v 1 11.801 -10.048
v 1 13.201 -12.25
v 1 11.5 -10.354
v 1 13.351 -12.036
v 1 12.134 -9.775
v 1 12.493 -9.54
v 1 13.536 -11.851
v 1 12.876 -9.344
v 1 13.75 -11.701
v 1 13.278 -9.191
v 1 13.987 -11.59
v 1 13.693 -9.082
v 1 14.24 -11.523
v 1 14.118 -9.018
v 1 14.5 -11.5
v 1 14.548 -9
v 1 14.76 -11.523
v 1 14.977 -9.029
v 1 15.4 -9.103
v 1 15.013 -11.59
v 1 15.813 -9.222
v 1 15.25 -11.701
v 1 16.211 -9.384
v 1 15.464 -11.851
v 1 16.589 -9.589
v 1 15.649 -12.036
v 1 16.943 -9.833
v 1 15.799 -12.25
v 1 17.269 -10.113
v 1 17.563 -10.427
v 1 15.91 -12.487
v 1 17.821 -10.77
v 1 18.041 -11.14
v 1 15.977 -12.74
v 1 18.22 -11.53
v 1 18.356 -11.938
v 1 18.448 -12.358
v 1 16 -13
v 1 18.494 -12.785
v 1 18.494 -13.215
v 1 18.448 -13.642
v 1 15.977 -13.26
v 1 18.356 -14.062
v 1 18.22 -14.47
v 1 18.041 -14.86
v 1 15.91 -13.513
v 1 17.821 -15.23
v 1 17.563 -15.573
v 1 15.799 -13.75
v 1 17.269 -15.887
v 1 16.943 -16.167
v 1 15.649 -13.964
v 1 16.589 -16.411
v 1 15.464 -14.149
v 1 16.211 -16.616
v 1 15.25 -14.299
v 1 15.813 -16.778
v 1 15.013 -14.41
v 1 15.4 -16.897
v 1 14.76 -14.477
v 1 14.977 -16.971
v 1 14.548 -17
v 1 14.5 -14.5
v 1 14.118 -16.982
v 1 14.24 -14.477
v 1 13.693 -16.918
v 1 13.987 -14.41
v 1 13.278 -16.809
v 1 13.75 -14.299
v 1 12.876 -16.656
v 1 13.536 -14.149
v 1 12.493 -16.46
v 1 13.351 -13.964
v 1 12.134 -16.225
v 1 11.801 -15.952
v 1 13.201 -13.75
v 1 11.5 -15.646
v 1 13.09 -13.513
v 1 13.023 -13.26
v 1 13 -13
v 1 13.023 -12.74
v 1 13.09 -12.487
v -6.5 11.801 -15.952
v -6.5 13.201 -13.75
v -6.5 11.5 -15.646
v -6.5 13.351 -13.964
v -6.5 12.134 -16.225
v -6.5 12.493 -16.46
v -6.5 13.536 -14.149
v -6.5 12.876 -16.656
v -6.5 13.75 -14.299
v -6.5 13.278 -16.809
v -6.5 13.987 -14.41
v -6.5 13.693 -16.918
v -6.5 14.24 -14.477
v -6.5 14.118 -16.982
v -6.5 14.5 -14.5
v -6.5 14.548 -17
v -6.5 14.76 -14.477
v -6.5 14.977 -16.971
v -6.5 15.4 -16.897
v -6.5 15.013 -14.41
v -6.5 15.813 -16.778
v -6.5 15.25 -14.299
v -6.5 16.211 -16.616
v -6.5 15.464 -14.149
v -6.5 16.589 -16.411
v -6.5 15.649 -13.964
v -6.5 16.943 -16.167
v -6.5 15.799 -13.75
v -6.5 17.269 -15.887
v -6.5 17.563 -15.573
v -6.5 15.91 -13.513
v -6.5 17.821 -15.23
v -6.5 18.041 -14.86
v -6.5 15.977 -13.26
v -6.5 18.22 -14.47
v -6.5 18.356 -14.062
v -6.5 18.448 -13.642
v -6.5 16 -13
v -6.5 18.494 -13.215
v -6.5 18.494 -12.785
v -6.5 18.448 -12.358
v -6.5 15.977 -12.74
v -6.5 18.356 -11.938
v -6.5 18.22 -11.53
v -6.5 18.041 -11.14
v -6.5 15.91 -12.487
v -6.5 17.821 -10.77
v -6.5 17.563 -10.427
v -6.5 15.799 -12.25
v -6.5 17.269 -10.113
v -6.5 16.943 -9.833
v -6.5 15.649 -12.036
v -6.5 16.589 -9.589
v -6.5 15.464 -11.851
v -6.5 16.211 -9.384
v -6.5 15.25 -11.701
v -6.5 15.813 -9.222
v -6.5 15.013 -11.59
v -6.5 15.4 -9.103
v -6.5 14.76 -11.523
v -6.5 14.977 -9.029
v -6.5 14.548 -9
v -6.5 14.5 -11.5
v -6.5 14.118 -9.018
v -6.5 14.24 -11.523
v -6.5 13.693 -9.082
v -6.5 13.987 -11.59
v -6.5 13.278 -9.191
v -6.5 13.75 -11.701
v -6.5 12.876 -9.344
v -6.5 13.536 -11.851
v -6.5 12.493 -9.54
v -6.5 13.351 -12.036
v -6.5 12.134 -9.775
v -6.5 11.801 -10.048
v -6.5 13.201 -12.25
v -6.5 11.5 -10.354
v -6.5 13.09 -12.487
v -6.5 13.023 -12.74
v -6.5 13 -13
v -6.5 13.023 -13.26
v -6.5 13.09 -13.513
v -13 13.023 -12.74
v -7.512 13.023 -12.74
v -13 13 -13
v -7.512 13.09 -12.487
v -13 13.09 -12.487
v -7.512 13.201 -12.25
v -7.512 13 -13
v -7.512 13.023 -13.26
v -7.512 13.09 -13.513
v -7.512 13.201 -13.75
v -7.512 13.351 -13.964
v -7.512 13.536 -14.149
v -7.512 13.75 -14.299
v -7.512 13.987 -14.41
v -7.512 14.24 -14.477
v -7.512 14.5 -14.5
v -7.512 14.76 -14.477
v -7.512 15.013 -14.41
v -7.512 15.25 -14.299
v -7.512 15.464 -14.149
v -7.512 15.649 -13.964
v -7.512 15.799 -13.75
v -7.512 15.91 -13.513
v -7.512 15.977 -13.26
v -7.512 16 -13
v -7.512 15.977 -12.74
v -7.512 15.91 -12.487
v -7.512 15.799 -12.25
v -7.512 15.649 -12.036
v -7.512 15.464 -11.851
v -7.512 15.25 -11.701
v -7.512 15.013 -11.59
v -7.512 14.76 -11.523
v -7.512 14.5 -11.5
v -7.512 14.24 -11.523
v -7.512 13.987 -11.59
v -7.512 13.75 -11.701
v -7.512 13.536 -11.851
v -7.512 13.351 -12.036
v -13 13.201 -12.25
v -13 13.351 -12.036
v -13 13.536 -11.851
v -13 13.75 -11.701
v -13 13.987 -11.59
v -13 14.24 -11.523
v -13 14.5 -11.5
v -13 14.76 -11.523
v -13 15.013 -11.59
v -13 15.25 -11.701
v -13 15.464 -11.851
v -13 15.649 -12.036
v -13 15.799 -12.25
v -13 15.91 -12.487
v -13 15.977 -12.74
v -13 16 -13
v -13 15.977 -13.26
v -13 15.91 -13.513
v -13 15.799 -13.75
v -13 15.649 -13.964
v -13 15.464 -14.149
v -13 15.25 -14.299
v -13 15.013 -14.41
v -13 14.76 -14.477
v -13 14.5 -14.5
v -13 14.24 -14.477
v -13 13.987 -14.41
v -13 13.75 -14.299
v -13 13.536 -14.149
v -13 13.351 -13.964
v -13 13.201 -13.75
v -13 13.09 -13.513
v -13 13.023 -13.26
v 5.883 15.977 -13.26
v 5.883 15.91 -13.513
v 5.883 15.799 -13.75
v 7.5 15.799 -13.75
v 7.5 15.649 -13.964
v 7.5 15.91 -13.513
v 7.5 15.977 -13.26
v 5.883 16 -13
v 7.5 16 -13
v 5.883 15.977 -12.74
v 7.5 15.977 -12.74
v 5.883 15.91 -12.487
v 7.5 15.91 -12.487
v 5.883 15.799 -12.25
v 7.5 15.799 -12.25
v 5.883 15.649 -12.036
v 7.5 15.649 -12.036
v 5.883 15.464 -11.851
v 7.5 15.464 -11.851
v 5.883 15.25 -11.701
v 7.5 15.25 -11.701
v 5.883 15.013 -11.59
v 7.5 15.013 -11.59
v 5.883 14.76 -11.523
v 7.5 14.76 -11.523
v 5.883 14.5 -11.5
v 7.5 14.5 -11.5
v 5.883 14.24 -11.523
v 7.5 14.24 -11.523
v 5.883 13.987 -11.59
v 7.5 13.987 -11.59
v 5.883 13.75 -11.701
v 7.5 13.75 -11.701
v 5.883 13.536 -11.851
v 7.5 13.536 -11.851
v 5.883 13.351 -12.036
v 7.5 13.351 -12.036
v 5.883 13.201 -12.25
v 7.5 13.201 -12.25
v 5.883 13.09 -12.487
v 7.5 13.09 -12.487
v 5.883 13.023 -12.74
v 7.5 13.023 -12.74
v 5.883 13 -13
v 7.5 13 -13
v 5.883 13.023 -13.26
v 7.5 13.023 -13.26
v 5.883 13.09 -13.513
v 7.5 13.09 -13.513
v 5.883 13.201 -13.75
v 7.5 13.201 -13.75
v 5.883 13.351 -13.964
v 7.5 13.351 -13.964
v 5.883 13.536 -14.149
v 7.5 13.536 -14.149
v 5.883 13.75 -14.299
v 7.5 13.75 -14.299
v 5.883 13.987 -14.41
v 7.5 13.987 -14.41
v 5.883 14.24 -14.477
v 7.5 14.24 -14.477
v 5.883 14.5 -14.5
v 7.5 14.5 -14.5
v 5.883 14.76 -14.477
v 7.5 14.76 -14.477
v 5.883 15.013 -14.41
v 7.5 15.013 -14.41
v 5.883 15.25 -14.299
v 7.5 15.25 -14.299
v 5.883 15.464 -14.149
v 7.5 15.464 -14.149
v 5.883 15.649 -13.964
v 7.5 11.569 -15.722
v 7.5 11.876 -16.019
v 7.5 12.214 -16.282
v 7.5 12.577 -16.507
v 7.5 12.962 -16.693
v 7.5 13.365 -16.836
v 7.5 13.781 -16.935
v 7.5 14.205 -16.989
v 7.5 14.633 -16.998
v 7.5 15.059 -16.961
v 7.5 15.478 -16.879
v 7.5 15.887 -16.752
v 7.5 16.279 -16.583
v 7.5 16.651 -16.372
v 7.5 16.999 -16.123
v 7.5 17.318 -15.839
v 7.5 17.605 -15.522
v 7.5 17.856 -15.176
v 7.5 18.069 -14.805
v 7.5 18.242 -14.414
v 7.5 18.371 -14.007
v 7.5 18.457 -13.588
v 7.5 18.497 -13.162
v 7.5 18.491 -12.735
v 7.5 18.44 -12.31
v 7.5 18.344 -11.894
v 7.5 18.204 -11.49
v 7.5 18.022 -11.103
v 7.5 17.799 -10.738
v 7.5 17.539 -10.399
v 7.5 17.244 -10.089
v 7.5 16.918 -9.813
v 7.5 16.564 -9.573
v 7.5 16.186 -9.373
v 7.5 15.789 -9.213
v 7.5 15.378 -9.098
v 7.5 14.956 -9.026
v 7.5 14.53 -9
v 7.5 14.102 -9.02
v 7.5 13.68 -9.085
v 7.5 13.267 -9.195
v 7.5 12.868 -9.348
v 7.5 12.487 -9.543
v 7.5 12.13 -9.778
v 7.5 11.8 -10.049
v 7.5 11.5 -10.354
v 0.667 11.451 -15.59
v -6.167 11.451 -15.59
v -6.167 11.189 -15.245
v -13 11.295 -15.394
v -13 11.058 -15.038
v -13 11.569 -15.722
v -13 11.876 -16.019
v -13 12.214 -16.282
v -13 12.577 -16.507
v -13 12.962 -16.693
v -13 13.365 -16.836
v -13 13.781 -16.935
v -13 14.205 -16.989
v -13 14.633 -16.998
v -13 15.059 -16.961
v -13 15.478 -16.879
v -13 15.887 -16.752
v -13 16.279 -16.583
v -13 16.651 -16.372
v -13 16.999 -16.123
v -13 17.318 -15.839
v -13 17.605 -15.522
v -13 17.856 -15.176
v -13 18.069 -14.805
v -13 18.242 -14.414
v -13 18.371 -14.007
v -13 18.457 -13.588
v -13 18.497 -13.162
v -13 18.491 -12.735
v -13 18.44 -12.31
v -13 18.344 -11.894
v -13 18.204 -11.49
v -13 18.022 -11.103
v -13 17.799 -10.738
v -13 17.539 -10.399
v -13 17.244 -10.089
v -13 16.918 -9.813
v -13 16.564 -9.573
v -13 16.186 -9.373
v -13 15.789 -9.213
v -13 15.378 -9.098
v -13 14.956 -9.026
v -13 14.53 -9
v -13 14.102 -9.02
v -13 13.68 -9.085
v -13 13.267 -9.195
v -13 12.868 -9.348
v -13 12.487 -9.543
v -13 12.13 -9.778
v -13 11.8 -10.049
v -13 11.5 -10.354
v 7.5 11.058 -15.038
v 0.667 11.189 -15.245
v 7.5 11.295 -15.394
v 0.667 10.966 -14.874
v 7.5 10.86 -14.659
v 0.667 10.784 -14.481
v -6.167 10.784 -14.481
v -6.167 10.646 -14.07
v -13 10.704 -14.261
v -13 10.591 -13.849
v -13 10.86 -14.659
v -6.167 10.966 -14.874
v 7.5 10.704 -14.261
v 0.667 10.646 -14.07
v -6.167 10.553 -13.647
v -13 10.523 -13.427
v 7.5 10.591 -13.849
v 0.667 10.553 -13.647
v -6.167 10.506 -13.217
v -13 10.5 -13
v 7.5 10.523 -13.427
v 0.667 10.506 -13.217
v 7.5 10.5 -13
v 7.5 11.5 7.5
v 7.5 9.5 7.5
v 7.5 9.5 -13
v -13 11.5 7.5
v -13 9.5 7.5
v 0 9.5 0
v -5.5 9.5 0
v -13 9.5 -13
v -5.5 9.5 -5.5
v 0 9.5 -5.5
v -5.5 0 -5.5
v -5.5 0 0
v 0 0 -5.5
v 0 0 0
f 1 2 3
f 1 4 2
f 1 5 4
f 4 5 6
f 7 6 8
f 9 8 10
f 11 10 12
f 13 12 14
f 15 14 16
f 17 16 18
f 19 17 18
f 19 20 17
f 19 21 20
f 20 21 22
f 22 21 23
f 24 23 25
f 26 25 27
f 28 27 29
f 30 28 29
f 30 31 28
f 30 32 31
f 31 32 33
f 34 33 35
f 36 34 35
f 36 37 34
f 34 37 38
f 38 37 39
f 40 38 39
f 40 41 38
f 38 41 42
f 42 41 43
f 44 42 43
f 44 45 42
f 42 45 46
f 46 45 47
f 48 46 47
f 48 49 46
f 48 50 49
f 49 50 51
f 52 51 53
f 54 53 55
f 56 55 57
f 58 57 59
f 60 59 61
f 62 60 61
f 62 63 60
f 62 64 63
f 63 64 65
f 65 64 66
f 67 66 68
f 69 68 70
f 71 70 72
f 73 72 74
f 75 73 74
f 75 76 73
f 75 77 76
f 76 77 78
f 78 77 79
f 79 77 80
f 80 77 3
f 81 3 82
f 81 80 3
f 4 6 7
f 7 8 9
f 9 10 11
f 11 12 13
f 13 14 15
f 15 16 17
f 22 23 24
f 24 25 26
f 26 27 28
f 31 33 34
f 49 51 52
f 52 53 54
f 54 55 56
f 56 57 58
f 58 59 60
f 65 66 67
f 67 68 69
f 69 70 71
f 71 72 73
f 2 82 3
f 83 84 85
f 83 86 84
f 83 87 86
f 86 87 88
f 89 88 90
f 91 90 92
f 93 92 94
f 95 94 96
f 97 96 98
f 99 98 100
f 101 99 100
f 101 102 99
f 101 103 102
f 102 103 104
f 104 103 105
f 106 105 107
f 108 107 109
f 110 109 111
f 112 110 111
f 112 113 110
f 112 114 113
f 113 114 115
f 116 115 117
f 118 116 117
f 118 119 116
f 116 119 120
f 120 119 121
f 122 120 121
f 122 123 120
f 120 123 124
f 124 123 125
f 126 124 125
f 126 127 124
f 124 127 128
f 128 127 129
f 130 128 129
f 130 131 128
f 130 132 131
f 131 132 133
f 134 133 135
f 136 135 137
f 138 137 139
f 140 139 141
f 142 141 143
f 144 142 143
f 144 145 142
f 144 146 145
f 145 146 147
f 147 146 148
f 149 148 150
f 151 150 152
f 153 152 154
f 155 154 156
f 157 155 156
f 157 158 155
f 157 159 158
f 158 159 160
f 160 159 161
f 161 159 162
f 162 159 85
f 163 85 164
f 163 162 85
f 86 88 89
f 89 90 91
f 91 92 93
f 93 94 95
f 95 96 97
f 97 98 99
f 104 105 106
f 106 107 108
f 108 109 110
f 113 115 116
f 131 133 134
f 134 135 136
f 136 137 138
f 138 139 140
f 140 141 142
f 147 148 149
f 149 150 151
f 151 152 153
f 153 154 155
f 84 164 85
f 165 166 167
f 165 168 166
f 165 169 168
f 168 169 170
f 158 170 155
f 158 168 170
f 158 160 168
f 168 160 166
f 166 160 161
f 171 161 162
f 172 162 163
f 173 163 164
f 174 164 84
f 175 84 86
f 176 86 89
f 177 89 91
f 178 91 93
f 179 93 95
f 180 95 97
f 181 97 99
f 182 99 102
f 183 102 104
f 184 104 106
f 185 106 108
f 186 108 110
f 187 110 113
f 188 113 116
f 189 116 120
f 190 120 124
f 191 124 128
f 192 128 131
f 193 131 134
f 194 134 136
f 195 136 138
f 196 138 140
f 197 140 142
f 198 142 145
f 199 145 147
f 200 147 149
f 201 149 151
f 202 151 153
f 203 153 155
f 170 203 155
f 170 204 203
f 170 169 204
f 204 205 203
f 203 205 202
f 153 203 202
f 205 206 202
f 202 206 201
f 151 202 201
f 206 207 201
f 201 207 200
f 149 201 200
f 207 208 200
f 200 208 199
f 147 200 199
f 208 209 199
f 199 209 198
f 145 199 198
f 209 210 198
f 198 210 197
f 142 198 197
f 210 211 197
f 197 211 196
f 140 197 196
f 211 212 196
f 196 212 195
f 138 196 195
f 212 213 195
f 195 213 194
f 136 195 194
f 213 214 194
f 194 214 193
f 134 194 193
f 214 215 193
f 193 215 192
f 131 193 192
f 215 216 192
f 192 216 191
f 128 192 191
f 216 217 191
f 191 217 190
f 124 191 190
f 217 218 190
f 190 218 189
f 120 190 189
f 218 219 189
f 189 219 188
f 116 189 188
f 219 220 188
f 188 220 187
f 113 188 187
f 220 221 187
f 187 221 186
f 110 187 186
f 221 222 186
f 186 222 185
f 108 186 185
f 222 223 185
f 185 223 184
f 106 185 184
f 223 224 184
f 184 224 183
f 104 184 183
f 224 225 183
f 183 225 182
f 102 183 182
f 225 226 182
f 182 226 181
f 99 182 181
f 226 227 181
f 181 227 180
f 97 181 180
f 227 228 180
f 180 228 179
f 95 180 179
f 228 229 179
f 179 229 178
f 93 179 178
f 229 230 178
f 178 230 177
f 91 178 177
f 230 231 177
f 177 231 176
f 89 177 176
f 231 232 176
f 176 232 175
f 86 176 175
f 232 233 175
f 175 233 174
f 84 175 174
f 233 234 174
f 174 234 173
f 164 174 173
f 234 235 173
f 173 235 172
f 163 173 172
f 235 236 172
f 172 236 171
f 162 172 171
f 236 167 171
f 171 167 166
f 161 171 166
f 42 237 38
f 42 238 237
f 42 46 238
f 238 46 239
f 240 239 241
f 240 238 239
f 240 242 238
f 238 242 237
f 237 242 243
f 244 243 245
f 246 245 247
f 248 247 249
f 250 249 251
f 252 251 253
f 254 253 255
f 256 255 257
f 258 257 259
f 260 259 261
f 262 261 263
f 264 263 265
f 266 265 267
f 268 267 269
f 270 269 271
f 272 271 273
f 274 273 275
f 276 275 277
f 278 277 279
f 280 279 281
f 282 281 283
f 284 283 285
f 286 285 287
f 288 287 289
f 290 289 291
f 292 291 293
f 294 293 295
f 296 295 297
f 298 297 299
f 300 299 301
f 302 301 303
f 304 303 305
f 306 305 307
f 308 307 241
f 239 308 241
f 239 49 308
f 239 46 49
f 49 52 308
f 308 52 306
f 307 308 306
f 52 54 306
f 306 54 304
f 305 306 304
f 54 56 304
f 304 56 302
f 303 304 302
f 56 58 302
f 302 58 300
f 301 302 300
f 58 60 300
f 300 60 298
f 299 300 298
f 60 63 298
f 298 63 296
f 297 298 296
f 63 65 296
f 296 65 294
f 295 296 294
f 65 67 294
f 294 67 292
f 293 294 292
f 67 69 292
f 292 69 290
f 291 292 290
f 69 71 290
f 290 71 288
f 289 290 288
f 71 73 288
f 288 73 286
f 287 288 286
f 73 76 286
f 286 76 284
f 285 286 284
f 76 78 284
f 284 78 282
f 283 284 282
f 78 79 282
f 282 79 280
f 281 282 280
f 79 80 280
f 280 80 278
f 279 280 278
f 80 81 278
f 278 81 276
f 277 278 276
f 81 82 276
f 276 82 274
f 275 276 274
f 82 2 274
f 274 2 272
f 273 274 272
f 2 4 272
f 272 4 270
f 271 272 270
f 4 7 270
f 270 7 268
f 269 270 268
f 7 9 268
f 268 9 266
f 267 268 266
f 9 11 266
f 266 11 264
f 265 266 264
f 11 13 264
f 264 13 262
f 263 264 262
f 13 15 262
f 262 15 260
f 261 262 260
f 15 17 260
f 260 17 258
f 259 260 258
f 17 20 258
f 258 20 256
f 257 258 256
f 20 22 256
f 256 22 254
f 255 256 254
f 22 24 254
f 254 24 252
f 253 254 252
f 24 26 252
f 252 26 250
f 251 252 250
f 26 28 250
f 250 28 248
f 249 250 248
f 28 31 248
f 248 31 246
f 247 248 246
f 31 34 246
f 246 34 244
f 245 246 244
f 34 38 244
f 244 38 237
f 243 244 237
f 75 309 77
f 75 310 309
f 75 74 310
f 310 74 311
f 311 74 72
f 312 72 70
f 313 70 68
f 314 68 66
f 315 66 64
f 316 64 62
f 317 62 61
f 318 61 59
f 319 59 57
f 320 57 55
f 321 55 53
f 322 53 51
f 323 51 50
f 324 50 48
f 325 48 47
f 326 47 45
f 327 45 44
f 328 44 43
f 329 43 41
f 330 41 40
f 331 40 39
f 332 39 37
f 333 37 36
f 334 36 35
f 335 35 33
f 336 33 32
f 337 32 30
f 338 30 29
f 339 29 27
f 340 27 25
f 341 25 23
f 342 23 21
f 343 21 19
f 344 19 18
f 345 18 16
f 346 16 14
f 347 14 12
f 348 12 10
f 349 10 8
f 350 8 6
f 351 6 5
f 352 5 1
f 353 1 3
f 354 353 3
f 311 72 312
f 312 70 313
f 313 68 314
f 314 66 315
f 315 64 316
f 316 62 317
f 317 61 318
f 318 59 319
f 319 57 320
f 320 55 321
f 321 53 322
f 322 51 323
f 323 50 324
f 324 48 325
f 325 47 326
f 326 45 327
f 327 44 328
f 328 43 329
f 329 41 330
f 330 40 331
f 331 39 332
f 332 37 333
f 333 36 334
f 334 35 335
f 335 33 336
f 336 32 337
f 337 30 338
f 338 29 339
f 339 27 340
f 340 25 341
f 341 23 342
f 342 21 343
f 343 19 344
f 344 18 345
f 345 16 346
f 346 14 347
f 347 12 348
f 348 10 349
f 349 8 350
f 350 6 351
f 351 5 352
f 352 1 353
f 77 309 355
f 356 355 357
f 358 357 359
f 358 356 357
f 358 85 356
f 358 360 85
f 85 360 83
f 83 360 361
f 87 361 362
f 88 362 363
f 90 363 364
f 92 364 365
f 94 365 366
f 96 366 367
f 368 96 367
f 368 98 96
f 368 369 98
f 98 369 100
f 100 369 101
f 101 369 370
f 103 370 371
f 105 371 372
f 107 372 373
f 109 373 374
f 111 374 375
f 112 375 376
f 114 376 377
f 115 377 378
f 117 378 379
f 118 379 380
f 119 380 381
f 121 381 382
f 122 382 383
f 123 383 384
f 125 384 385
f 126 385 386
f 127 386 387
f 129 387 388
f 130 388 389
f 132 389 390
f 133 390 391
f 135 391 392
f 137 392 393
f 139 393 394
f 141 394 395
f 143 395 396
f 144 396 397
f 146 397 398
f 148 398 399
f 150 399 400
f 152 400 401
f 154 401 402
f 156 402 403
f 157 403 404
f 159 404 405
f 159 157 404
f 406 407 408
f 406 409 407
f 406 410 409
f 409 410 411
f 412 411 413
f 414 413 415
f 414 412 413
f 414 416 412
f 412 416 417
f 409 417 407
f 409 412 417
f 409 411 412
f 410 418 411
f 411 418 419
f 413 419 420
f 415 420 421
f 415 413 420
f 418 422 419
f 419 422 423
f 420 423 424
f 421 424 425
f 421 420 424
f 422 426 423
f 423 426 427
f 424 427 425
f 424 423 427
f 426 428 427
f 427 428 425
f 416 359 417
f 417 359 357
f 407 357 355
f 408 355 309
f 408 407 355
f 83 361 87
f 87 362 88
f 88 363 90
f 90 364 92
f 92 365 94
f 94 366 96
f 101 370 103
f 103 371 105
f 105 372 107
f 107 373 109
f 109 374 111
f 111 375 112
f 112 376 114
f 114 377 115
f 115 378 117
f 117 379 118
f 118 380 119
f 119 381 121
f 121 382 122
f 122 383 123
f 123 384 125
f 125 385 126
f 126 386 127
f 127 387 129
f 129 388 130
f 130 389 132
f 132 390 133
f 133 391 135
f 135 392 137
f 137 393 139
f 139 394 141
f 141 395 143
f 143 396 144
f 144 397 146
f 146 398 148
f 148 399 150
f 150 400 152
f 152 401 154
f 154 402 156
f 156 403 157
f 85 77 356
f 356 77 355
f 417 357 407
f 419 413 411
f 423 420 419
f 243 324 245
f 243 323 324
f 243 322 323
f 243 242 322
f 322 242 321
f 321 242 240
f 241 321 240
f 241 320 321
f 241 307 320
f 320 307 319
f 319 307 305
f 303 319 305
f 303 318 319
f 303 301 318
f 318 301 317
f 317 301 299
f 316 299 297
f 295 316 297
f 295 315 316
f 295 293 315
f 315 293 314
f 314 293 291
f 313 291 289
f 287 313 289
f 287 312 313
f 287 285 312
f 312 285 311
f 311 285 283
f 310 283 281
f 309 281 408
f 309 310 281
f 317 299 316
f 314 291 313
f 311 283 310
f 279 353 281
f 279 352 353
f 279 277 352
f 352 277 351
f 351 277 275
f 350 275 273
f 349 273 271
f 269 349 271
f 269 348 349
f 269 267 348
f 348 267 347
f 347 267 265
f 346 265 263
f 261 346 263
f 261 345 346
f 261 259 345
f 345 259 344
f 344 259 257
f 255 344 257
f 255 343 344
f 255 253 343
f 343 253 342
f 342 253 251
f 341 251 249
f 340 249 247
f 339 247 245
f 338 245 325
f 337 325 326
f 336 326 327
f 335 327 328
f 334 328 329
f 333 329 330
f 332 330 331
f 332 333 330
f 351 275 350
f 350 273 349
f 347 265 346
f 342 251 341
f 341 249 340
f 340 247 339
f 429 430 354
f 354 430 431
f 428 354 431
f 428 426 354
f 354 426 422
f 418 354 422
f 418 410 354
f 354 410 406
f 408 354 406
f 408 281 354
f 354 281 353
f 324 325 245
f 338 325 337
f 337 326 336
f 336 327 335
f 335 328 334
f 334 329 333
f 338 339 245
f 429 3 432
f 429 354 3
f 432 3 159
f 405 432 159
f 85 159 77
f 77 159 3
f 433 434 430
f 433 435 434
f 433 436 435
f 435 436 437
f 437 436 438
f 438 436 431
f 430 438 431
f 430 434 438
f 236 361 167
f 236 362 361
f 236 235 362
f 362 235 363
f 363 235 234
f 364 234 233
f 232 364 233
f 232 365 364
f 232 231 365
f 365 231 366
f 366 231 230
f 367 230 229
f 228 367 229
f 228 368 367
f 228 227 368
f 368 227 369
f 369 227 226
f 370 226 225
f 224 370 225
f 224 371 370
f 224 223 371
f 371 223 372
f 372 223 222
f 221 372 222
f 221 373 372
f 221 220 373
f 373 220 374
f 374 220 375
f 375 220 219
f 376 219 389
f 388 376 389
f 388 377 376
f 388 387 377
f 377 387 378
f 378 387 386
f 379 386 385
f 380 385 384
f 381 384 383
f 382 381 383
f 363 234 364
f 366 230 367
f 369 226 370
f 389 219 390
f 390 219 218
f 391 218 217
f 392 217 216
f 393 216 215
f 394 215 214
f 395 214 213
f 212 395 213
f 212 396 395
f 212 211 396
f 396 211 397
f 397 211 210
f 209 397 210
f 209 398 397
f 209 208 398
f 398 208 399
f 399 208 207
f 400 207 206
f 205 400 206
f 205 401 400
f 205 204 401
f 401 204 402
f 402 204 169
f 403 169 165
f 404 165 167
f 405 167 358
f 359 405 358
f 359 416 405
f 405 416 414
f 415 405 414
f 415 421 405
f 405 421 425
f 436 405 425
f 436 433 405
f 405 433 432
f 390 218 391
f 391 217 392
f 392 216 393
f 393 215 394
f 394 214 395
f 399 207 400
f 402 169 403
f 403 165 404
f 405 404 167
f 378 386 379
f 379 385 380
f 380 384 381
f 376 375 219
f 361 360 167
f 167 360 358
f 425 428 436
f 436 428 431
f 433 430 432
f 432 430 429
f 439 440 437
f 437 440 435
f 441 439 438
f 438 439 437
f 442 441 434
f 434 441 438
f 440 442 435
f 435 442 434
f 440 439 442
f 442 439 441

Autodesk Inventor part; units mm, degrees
ref_plane "YZ Plane" through (0, 0, 0) normal (1, 0, 0) x (0, 1, 0)
ref_plane "XZ Plane" through (0, 0, 0) normal (0, 1, 0) x (-1, 0, 0)
ref_plane "XY Plane" through (0, 0, 0) normal (0, 0, 1) x (1, 0, 0)
sketch "Sketch1" plane through (0, 0, 0) normal (0, 1, 0) x (-1, 0, 0)
  line L0 (0, 0) -> (5.5, 0)
  line L1 (5.5, 0) -> (5.5, -5.5)
  line L2 (5.5, -5.5) -> (0, -5.5)
  line L3 (0, -5.5) -> (0, 0)
  dimension "d0" = 5.5
  dimension "d1" = 5.5
extrude "Extrusion1" add sketch "Sketch1" along normal blind 9.5
sketch "Sketch2" plane through (0, 9.5, 0) normal (0, 1, 0) x (1, 0, 0)
  line L0 (-5.5, 5.5) -> (-5.5, 0) projected
  line L1 (-5.5, 2.75) -> (0, 2.75)
  line L2 (-2.75, 5.5) -> (-2.75, 0)
  line L3 (7.5, -7.5) -> (-13, -7.5)
  line L4 (-13, -7.5) -> (-13, 13)
  line L5 (-13, 13) -> (7.5, 13)
  line L6 (7.5, 13) -> (7.5, -7.5)
  line L7 (7.5, -7.5) -> (-13, 13) construction
  line L8 (-13, -7.5) -> (7.5, 13) construction
  point P0 (0, 0)
  point P1 (-2.75, 2.75)
  dimension "d4" = 20.5
  dimension "d5" = 20.5
extrude "Extrusion2" add sketch "Sketch2" along normal blind 2
sketch "Sketch4" plane through (7.5, 9.5, 7.5) normal (1, 0, 0) x (0, 0, -1)
  line L0 (0, 2) -> (20.5, 2) projected
  line L1 (20.5, 2) -> (20.5, 5)
  circle A0 centre (20.5, 5) radius 4
  point P0 (7.5, -9.5)
  dimension "d8" = 3
extrude "Extrusion3" add sketch "Sketch4" against normal blind 20.5
hole "Hole1" at (-13, 14.5, -13) direction (1, 0, 0) diameter 3 end through all
sketch "Sketch5" plane through (-13, 9.5, 7.5) normal (0, 0, 1) x (1, 0, 0)
  line L0 (0, 2) -> (20.5, 2) projected
  line L1 (6.5, 2) -> (14, 2)
  line L2 (14, 2) -> (14, 14.1899)
  line L3 (14, 14.1899) -> (6.5, 14.1899)
  line L4 (6.5, 14.1899) -> (6.5, 2)
  line L5 (0, 9) -> (0, 1) projected
  line L6 (20.5, 9) -> (20.5, 1) projected
  point P0 (13, -9.5)
  dimension "d20" = 12.1899
  dimension "d21" = 6.5
  dimension "d22" = 6.5
  dimension "d23" = 7.5
extrude "Extrusion4" cut sketch "Sketch5" against normal blind 30
properties part number "camera holder"
